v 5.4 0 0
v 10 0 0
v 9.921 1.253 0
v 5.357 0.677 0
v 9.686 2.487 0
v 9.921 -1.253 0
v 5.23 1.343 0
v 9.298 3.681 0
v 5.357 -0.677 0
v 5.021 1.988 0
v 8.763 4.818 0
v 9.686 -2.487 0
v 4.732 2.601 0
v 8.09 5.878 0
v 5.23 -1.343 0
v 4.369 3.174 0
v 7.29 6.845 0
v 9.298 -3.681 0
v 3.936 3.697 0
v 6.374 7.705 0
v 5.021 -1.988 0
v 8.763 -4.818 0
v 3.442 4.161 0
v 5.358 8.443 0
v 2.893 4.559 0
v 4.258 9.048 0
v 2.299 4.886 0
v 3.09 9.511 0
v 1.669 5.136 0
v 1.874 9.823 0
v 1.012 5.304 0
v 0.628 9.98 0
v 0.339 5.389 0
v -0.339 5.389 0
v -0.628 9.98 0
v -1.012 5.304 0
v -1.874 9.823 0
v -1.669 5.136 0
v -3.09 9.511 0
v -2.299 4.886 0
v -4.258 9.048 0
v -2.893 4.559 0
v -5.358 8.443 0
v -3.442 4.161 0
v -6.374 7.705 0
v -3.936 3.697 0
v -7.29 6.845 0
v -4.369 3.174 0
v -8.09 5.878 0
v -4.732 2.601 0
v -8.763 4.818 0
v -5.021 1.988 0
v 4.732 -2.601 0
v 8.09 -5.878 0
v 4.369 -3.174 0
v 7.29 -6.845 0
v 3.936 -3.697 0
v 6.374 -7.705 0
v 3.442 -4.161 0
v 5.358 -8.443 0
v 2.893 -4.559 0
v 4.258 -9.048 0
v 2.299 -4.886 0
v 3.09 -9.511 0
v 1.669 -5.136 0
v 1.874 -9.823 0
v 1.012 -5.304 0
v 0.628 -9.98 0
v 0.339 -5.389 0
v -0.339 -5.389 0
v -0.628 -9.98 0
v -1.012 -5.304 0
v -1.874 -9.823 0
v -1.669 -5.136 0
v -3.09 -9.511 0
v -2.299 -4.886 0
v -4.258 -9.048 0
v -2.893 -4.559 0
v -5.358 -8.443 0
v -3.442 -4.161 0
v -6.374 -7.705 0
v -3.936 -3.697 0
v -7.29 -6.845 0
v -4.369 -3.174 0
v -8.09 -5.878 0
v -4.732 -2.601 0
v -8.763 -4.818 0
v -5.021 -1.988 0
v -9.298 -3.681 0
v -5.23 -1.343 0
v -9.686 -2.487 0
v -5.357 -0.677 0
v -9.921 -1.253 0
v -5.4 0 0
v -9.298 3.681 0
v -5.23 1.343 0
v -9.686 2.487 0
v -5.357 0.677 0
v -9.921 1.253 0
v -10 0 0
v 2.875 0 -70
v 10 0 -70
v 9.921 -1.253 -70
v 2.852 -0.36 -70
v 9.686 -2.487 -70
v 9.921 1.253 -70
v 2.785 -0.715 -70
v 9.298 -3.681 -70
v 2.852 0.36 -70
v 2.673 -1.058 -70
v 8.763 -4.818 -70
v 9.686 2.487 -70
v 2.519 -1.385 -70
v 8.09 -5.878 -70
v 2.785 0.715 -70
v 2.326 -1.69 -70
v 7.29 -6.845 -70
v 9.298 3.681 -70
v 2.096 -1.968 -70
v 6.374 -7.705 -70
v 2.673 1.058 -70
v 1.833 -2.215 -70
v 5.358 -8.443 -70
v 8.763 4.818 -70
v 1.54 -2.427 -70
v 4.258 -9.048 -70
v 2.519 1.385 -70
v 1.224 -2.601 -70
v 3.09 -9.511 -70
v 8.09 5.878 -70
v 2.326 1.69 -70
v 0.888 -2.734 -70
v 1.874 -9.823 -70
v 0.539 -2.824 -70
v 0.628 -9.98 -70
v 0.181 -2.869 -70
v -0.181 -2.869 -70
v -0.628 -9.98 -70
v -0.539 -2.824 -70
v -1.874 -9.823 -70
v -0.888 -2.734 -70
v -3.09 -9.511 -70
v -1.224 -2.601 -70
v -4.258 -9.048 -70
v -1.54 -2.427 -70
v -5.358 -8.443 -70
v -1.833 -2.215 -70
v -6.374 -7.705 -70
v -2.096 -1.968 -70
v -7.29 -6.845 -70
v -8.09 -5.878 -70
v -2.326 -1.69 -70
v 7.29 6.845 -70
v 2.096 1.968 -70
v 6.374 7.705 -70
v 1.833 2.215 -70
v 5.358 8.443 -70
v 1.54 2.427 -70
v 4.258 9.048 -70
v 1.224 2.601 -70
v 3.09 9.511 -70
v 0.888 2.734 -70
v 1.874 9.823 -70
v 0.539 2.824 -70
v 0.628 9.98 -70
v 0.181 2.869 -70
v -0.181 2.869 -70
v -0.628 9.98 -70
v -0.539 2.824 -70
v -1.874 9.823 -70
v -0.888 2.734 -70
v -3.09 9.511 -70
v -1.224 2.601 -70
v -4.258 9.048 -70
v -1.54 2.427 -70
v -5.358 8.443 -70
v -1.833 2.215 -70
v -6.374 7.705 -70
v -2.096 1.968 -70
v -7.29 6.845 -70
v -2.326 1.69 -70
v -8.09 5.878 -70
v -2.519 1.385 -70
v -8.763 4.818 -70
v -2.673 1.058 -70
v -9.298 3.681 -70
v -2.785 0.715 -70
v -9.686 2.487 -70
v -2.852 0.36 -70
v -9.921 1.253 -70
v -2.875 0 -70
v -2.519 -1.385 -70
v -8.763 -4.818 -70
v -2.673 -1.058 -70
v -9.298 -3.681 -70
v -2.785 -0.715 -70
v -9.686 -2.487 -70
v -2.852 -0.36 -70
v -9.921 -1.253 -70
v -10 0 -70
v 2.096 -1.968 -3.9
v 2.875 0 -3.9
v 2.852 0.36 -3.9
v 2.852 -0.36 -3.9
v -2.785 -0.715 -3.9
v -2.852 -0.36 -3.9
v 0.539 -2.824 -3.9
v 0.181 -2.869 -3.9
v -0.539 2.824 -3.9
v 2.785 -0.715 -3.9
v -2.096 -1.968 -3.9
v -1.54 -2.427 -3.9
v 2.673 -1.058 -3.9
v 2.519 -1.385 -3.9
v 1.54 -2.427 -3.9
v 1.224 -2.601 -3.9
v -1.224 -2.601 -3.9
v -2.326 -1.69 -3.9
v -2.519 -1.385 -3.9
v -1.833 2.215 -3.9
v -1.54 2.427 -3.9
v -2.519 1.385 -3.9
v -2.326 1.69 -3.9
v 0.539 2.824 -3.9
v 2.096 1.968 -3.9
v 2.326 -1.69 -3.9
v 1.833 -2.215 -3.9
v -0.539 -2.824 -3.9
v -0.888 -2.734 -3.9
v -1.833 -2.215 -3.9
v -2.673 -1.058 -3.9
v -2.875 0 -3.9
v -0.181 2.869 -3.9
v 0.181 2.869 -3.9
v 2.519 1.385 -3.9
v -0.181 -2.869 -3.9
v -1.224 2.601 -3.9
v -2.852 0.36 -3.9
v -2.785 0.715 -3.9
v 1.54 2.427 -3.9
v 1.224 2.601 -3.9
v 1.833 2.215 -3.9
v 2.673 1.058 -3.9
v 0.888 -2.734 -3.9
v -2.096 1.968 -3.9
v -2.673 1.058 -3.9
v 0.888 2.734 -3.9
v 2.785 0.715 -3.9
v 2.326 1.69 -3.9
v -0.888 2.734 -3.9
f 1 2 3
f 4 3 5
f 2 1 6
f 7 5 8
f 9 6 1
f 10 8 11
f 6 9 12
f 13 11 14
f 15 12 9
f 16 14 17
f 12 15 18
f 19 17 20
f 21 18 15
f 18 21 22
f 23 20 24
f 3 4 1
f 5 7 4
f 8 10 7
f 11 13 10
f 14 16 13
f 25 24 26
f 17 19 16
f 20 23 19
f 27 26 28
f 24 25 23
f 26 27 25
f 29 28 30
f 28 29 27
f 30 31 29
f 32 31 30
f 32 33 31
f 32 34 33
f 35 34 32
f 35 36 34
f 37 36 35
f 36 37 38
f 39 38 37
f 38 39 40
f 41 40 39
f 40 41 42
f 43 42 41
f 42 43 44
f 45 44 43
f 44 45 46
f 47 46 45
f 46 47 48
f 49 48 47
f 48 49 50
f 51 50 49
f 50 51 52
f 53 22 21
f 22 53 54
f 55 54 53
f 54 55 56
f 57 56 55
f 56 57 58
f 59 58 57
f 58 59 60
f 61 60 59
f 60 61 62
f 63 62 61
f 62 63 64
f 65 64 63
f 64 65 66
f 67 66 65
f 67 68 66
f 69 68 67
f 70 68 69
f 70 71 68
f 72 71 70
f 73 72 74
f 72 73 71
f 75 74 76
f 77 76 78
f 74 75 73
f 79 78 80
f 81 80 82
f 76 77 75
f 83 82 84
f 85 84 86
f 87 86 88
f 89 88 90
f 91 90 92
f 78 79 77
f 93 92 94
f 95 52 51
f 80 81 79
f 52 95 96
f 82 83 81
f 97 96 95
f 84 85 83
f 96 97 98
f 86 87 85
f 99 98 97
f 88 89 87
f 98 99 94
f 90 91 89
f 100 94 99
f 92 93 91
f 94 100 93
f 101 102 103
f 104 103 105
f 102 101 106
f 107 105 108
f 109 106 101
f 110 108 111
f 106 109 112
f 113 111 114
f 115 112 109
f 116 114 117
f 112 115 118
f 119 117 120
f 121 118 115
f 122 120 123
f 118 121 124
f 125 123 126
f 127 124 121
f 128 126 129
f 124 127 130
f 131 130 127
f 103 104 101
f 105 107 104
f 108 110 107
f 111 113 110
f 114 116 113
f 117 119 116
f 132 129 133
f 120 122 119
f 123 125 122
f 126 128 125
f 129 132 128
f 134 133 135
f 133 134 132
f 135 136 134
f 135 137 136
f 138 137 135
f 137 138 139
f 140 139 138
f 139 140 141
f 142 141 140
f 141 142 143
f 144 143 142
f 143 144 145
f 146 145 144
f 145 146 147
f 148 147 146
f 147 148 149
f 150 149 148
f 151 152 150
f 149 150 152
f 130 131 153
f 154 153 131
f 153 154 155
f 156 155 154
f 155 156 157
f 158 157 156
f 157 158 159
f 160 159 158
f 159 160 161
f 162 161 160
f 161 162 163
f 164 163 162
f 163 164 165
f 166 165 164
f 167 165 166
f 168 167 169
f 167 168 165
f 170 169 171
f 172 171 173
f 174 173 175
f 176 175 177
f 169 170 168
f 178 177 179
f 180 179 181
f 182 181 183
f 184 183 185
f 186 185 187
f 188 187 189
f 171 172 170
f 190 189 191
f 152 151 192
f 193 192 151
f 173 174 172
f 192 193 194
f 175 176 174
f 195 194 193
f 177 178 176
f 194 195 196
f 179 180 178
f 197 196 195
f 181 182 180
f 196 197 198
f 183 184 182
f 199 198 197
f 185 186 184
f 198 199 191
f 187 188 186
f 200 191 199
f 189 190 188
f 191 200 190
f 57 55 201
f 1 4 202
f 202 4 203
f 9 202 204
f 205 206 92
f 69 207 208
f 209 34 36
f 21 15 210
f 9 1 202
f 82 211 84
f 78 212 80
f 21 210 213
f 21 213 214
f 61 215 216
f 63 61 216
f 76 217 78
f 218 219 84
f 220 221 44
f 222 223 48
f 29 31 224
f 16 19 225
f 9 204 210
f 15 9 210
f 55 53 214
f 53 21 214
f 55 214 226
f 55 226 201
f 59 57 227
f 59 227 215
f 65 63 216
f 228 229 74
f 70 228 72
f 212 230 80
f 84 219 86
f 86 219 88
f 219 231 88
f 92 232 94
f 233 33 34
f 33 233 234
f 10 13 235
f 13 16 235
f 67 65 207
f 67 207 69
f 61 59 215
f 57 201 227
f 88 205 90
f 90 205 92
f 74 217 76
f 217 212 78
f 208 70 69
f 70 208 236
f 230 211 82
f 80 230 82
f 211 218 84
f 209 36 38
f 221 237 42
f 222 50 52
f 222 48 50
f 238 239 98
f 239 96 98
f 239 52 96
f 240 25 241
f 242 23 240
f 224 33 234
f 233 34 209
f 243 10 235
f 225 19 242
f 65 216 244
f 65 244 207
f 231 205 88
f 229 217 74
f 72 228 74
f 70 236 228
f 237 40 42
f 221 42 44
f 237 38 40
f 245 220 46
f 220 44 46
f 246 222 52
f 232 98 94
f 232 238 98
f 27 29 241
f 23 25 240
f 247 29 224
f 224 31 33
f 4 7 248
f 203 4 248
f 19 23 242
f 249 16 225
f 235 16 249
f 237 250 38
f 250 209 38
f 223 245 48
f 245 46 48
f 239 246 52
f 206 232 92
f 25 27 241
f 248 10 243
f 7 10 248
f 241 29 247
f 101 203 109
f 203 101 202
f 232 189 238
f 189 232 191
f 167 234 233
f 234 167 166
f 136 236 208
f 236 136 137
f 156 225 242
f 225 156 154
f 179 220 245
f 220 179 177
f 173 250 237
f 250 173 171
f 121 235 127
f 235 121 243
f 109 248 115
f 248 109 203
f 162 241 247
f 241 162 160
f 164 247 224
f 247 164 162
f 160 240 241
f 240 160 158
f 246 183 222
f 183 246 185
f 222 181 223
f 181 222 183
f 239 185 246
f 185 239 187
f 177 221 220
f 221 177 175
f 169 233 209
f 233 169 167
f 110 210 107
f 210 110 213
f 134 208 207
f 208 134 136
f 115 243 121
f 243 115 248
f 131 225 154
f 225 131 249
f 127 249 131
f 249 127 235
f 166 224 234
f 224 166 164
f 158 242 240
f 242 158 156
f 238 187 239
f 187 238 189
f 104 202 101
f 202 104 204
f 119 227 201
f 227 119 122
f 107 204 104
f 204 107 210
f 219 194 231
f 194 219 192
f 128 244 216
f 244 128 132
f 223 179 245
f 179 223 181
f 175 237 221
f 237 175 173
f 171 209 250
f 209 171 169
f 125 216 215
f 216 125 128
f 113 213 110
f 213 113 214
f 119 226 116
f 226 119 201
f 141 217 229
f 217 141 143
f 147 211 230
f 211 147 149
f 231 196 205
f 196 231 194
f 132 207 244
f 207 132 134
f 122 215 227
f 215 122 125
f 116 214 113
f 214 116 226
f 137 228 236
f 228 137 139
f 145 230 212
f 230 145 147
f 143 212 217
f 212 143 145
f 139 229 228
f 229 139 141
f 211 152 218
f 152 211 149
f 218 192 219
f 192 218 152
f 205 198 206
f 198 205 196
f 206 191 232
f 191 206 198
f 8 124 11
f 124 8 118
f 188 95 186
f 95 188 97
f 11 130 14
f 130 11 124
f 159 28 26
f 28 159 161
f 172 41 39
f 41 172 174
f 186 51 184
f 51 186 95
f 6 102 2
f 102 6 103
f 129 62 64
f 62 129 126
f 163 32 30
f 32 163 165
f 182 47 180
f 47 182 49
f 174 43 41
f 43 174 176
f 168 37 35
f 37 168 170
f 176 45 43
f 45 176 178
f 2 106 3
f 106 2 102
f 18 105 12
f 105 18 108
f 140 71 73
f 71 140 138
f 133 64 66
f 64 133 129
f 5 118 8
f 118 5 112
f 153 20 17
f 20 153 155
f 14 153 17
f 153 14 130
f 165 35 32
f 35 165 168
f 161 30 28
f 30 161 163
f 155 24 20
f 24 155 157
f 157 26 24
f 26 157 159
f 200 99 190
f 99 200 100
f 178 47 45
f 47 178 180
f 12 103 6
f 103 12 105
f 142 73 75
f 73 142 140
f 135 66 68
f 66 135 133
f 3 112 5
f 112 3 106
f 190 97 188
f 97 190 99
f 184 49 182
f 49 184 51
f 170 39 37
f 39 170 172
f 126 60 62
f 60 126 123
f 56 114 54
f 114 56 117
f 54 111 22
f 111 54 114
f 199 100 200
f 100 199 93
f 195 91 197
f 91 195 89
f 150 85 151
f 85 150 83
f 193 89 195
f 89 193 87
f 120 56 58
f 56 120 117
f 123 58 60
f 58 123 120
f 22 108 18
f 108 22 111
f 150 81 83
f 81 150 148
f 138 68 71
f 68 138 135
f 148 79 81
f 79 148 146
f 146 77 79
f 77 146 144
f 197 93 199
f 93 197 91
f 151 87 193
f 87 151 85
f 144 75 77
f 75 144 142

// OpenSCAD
$fn = 50;


difference() {
	union() {
		translate(v = [0, 0, -70.0000000000]) {
			cylinder(h = 70, r = 10.0000000000);
		}
	}
	union() {
		translate(v = [0, 0, 0]) {
			rotate(a = [0, 0, 0]) {
				difference() {
					union() {
						#translate(v = [0, 0, -70.0000000000]) {
							cylinder(h = 70, r = 2.6000000000);
						}
						#translate(v = [0, 0, -3.9000000000]) {
							cylinder(h = 3.9000000000, r1 = 2.8750000000, r2 = 5.4000000000);
						}
						#translate(v = [0, 0, -70.0000000000]) {
							cylinder(h = 70, r = 2.8750000000);
						}
						#translate(v = [0, 0, -70.0000000000]) {
							cylinder(h = 70, r = 2.6000000000);
						}
					}
					union();
				}
			}
		}
	}
}
